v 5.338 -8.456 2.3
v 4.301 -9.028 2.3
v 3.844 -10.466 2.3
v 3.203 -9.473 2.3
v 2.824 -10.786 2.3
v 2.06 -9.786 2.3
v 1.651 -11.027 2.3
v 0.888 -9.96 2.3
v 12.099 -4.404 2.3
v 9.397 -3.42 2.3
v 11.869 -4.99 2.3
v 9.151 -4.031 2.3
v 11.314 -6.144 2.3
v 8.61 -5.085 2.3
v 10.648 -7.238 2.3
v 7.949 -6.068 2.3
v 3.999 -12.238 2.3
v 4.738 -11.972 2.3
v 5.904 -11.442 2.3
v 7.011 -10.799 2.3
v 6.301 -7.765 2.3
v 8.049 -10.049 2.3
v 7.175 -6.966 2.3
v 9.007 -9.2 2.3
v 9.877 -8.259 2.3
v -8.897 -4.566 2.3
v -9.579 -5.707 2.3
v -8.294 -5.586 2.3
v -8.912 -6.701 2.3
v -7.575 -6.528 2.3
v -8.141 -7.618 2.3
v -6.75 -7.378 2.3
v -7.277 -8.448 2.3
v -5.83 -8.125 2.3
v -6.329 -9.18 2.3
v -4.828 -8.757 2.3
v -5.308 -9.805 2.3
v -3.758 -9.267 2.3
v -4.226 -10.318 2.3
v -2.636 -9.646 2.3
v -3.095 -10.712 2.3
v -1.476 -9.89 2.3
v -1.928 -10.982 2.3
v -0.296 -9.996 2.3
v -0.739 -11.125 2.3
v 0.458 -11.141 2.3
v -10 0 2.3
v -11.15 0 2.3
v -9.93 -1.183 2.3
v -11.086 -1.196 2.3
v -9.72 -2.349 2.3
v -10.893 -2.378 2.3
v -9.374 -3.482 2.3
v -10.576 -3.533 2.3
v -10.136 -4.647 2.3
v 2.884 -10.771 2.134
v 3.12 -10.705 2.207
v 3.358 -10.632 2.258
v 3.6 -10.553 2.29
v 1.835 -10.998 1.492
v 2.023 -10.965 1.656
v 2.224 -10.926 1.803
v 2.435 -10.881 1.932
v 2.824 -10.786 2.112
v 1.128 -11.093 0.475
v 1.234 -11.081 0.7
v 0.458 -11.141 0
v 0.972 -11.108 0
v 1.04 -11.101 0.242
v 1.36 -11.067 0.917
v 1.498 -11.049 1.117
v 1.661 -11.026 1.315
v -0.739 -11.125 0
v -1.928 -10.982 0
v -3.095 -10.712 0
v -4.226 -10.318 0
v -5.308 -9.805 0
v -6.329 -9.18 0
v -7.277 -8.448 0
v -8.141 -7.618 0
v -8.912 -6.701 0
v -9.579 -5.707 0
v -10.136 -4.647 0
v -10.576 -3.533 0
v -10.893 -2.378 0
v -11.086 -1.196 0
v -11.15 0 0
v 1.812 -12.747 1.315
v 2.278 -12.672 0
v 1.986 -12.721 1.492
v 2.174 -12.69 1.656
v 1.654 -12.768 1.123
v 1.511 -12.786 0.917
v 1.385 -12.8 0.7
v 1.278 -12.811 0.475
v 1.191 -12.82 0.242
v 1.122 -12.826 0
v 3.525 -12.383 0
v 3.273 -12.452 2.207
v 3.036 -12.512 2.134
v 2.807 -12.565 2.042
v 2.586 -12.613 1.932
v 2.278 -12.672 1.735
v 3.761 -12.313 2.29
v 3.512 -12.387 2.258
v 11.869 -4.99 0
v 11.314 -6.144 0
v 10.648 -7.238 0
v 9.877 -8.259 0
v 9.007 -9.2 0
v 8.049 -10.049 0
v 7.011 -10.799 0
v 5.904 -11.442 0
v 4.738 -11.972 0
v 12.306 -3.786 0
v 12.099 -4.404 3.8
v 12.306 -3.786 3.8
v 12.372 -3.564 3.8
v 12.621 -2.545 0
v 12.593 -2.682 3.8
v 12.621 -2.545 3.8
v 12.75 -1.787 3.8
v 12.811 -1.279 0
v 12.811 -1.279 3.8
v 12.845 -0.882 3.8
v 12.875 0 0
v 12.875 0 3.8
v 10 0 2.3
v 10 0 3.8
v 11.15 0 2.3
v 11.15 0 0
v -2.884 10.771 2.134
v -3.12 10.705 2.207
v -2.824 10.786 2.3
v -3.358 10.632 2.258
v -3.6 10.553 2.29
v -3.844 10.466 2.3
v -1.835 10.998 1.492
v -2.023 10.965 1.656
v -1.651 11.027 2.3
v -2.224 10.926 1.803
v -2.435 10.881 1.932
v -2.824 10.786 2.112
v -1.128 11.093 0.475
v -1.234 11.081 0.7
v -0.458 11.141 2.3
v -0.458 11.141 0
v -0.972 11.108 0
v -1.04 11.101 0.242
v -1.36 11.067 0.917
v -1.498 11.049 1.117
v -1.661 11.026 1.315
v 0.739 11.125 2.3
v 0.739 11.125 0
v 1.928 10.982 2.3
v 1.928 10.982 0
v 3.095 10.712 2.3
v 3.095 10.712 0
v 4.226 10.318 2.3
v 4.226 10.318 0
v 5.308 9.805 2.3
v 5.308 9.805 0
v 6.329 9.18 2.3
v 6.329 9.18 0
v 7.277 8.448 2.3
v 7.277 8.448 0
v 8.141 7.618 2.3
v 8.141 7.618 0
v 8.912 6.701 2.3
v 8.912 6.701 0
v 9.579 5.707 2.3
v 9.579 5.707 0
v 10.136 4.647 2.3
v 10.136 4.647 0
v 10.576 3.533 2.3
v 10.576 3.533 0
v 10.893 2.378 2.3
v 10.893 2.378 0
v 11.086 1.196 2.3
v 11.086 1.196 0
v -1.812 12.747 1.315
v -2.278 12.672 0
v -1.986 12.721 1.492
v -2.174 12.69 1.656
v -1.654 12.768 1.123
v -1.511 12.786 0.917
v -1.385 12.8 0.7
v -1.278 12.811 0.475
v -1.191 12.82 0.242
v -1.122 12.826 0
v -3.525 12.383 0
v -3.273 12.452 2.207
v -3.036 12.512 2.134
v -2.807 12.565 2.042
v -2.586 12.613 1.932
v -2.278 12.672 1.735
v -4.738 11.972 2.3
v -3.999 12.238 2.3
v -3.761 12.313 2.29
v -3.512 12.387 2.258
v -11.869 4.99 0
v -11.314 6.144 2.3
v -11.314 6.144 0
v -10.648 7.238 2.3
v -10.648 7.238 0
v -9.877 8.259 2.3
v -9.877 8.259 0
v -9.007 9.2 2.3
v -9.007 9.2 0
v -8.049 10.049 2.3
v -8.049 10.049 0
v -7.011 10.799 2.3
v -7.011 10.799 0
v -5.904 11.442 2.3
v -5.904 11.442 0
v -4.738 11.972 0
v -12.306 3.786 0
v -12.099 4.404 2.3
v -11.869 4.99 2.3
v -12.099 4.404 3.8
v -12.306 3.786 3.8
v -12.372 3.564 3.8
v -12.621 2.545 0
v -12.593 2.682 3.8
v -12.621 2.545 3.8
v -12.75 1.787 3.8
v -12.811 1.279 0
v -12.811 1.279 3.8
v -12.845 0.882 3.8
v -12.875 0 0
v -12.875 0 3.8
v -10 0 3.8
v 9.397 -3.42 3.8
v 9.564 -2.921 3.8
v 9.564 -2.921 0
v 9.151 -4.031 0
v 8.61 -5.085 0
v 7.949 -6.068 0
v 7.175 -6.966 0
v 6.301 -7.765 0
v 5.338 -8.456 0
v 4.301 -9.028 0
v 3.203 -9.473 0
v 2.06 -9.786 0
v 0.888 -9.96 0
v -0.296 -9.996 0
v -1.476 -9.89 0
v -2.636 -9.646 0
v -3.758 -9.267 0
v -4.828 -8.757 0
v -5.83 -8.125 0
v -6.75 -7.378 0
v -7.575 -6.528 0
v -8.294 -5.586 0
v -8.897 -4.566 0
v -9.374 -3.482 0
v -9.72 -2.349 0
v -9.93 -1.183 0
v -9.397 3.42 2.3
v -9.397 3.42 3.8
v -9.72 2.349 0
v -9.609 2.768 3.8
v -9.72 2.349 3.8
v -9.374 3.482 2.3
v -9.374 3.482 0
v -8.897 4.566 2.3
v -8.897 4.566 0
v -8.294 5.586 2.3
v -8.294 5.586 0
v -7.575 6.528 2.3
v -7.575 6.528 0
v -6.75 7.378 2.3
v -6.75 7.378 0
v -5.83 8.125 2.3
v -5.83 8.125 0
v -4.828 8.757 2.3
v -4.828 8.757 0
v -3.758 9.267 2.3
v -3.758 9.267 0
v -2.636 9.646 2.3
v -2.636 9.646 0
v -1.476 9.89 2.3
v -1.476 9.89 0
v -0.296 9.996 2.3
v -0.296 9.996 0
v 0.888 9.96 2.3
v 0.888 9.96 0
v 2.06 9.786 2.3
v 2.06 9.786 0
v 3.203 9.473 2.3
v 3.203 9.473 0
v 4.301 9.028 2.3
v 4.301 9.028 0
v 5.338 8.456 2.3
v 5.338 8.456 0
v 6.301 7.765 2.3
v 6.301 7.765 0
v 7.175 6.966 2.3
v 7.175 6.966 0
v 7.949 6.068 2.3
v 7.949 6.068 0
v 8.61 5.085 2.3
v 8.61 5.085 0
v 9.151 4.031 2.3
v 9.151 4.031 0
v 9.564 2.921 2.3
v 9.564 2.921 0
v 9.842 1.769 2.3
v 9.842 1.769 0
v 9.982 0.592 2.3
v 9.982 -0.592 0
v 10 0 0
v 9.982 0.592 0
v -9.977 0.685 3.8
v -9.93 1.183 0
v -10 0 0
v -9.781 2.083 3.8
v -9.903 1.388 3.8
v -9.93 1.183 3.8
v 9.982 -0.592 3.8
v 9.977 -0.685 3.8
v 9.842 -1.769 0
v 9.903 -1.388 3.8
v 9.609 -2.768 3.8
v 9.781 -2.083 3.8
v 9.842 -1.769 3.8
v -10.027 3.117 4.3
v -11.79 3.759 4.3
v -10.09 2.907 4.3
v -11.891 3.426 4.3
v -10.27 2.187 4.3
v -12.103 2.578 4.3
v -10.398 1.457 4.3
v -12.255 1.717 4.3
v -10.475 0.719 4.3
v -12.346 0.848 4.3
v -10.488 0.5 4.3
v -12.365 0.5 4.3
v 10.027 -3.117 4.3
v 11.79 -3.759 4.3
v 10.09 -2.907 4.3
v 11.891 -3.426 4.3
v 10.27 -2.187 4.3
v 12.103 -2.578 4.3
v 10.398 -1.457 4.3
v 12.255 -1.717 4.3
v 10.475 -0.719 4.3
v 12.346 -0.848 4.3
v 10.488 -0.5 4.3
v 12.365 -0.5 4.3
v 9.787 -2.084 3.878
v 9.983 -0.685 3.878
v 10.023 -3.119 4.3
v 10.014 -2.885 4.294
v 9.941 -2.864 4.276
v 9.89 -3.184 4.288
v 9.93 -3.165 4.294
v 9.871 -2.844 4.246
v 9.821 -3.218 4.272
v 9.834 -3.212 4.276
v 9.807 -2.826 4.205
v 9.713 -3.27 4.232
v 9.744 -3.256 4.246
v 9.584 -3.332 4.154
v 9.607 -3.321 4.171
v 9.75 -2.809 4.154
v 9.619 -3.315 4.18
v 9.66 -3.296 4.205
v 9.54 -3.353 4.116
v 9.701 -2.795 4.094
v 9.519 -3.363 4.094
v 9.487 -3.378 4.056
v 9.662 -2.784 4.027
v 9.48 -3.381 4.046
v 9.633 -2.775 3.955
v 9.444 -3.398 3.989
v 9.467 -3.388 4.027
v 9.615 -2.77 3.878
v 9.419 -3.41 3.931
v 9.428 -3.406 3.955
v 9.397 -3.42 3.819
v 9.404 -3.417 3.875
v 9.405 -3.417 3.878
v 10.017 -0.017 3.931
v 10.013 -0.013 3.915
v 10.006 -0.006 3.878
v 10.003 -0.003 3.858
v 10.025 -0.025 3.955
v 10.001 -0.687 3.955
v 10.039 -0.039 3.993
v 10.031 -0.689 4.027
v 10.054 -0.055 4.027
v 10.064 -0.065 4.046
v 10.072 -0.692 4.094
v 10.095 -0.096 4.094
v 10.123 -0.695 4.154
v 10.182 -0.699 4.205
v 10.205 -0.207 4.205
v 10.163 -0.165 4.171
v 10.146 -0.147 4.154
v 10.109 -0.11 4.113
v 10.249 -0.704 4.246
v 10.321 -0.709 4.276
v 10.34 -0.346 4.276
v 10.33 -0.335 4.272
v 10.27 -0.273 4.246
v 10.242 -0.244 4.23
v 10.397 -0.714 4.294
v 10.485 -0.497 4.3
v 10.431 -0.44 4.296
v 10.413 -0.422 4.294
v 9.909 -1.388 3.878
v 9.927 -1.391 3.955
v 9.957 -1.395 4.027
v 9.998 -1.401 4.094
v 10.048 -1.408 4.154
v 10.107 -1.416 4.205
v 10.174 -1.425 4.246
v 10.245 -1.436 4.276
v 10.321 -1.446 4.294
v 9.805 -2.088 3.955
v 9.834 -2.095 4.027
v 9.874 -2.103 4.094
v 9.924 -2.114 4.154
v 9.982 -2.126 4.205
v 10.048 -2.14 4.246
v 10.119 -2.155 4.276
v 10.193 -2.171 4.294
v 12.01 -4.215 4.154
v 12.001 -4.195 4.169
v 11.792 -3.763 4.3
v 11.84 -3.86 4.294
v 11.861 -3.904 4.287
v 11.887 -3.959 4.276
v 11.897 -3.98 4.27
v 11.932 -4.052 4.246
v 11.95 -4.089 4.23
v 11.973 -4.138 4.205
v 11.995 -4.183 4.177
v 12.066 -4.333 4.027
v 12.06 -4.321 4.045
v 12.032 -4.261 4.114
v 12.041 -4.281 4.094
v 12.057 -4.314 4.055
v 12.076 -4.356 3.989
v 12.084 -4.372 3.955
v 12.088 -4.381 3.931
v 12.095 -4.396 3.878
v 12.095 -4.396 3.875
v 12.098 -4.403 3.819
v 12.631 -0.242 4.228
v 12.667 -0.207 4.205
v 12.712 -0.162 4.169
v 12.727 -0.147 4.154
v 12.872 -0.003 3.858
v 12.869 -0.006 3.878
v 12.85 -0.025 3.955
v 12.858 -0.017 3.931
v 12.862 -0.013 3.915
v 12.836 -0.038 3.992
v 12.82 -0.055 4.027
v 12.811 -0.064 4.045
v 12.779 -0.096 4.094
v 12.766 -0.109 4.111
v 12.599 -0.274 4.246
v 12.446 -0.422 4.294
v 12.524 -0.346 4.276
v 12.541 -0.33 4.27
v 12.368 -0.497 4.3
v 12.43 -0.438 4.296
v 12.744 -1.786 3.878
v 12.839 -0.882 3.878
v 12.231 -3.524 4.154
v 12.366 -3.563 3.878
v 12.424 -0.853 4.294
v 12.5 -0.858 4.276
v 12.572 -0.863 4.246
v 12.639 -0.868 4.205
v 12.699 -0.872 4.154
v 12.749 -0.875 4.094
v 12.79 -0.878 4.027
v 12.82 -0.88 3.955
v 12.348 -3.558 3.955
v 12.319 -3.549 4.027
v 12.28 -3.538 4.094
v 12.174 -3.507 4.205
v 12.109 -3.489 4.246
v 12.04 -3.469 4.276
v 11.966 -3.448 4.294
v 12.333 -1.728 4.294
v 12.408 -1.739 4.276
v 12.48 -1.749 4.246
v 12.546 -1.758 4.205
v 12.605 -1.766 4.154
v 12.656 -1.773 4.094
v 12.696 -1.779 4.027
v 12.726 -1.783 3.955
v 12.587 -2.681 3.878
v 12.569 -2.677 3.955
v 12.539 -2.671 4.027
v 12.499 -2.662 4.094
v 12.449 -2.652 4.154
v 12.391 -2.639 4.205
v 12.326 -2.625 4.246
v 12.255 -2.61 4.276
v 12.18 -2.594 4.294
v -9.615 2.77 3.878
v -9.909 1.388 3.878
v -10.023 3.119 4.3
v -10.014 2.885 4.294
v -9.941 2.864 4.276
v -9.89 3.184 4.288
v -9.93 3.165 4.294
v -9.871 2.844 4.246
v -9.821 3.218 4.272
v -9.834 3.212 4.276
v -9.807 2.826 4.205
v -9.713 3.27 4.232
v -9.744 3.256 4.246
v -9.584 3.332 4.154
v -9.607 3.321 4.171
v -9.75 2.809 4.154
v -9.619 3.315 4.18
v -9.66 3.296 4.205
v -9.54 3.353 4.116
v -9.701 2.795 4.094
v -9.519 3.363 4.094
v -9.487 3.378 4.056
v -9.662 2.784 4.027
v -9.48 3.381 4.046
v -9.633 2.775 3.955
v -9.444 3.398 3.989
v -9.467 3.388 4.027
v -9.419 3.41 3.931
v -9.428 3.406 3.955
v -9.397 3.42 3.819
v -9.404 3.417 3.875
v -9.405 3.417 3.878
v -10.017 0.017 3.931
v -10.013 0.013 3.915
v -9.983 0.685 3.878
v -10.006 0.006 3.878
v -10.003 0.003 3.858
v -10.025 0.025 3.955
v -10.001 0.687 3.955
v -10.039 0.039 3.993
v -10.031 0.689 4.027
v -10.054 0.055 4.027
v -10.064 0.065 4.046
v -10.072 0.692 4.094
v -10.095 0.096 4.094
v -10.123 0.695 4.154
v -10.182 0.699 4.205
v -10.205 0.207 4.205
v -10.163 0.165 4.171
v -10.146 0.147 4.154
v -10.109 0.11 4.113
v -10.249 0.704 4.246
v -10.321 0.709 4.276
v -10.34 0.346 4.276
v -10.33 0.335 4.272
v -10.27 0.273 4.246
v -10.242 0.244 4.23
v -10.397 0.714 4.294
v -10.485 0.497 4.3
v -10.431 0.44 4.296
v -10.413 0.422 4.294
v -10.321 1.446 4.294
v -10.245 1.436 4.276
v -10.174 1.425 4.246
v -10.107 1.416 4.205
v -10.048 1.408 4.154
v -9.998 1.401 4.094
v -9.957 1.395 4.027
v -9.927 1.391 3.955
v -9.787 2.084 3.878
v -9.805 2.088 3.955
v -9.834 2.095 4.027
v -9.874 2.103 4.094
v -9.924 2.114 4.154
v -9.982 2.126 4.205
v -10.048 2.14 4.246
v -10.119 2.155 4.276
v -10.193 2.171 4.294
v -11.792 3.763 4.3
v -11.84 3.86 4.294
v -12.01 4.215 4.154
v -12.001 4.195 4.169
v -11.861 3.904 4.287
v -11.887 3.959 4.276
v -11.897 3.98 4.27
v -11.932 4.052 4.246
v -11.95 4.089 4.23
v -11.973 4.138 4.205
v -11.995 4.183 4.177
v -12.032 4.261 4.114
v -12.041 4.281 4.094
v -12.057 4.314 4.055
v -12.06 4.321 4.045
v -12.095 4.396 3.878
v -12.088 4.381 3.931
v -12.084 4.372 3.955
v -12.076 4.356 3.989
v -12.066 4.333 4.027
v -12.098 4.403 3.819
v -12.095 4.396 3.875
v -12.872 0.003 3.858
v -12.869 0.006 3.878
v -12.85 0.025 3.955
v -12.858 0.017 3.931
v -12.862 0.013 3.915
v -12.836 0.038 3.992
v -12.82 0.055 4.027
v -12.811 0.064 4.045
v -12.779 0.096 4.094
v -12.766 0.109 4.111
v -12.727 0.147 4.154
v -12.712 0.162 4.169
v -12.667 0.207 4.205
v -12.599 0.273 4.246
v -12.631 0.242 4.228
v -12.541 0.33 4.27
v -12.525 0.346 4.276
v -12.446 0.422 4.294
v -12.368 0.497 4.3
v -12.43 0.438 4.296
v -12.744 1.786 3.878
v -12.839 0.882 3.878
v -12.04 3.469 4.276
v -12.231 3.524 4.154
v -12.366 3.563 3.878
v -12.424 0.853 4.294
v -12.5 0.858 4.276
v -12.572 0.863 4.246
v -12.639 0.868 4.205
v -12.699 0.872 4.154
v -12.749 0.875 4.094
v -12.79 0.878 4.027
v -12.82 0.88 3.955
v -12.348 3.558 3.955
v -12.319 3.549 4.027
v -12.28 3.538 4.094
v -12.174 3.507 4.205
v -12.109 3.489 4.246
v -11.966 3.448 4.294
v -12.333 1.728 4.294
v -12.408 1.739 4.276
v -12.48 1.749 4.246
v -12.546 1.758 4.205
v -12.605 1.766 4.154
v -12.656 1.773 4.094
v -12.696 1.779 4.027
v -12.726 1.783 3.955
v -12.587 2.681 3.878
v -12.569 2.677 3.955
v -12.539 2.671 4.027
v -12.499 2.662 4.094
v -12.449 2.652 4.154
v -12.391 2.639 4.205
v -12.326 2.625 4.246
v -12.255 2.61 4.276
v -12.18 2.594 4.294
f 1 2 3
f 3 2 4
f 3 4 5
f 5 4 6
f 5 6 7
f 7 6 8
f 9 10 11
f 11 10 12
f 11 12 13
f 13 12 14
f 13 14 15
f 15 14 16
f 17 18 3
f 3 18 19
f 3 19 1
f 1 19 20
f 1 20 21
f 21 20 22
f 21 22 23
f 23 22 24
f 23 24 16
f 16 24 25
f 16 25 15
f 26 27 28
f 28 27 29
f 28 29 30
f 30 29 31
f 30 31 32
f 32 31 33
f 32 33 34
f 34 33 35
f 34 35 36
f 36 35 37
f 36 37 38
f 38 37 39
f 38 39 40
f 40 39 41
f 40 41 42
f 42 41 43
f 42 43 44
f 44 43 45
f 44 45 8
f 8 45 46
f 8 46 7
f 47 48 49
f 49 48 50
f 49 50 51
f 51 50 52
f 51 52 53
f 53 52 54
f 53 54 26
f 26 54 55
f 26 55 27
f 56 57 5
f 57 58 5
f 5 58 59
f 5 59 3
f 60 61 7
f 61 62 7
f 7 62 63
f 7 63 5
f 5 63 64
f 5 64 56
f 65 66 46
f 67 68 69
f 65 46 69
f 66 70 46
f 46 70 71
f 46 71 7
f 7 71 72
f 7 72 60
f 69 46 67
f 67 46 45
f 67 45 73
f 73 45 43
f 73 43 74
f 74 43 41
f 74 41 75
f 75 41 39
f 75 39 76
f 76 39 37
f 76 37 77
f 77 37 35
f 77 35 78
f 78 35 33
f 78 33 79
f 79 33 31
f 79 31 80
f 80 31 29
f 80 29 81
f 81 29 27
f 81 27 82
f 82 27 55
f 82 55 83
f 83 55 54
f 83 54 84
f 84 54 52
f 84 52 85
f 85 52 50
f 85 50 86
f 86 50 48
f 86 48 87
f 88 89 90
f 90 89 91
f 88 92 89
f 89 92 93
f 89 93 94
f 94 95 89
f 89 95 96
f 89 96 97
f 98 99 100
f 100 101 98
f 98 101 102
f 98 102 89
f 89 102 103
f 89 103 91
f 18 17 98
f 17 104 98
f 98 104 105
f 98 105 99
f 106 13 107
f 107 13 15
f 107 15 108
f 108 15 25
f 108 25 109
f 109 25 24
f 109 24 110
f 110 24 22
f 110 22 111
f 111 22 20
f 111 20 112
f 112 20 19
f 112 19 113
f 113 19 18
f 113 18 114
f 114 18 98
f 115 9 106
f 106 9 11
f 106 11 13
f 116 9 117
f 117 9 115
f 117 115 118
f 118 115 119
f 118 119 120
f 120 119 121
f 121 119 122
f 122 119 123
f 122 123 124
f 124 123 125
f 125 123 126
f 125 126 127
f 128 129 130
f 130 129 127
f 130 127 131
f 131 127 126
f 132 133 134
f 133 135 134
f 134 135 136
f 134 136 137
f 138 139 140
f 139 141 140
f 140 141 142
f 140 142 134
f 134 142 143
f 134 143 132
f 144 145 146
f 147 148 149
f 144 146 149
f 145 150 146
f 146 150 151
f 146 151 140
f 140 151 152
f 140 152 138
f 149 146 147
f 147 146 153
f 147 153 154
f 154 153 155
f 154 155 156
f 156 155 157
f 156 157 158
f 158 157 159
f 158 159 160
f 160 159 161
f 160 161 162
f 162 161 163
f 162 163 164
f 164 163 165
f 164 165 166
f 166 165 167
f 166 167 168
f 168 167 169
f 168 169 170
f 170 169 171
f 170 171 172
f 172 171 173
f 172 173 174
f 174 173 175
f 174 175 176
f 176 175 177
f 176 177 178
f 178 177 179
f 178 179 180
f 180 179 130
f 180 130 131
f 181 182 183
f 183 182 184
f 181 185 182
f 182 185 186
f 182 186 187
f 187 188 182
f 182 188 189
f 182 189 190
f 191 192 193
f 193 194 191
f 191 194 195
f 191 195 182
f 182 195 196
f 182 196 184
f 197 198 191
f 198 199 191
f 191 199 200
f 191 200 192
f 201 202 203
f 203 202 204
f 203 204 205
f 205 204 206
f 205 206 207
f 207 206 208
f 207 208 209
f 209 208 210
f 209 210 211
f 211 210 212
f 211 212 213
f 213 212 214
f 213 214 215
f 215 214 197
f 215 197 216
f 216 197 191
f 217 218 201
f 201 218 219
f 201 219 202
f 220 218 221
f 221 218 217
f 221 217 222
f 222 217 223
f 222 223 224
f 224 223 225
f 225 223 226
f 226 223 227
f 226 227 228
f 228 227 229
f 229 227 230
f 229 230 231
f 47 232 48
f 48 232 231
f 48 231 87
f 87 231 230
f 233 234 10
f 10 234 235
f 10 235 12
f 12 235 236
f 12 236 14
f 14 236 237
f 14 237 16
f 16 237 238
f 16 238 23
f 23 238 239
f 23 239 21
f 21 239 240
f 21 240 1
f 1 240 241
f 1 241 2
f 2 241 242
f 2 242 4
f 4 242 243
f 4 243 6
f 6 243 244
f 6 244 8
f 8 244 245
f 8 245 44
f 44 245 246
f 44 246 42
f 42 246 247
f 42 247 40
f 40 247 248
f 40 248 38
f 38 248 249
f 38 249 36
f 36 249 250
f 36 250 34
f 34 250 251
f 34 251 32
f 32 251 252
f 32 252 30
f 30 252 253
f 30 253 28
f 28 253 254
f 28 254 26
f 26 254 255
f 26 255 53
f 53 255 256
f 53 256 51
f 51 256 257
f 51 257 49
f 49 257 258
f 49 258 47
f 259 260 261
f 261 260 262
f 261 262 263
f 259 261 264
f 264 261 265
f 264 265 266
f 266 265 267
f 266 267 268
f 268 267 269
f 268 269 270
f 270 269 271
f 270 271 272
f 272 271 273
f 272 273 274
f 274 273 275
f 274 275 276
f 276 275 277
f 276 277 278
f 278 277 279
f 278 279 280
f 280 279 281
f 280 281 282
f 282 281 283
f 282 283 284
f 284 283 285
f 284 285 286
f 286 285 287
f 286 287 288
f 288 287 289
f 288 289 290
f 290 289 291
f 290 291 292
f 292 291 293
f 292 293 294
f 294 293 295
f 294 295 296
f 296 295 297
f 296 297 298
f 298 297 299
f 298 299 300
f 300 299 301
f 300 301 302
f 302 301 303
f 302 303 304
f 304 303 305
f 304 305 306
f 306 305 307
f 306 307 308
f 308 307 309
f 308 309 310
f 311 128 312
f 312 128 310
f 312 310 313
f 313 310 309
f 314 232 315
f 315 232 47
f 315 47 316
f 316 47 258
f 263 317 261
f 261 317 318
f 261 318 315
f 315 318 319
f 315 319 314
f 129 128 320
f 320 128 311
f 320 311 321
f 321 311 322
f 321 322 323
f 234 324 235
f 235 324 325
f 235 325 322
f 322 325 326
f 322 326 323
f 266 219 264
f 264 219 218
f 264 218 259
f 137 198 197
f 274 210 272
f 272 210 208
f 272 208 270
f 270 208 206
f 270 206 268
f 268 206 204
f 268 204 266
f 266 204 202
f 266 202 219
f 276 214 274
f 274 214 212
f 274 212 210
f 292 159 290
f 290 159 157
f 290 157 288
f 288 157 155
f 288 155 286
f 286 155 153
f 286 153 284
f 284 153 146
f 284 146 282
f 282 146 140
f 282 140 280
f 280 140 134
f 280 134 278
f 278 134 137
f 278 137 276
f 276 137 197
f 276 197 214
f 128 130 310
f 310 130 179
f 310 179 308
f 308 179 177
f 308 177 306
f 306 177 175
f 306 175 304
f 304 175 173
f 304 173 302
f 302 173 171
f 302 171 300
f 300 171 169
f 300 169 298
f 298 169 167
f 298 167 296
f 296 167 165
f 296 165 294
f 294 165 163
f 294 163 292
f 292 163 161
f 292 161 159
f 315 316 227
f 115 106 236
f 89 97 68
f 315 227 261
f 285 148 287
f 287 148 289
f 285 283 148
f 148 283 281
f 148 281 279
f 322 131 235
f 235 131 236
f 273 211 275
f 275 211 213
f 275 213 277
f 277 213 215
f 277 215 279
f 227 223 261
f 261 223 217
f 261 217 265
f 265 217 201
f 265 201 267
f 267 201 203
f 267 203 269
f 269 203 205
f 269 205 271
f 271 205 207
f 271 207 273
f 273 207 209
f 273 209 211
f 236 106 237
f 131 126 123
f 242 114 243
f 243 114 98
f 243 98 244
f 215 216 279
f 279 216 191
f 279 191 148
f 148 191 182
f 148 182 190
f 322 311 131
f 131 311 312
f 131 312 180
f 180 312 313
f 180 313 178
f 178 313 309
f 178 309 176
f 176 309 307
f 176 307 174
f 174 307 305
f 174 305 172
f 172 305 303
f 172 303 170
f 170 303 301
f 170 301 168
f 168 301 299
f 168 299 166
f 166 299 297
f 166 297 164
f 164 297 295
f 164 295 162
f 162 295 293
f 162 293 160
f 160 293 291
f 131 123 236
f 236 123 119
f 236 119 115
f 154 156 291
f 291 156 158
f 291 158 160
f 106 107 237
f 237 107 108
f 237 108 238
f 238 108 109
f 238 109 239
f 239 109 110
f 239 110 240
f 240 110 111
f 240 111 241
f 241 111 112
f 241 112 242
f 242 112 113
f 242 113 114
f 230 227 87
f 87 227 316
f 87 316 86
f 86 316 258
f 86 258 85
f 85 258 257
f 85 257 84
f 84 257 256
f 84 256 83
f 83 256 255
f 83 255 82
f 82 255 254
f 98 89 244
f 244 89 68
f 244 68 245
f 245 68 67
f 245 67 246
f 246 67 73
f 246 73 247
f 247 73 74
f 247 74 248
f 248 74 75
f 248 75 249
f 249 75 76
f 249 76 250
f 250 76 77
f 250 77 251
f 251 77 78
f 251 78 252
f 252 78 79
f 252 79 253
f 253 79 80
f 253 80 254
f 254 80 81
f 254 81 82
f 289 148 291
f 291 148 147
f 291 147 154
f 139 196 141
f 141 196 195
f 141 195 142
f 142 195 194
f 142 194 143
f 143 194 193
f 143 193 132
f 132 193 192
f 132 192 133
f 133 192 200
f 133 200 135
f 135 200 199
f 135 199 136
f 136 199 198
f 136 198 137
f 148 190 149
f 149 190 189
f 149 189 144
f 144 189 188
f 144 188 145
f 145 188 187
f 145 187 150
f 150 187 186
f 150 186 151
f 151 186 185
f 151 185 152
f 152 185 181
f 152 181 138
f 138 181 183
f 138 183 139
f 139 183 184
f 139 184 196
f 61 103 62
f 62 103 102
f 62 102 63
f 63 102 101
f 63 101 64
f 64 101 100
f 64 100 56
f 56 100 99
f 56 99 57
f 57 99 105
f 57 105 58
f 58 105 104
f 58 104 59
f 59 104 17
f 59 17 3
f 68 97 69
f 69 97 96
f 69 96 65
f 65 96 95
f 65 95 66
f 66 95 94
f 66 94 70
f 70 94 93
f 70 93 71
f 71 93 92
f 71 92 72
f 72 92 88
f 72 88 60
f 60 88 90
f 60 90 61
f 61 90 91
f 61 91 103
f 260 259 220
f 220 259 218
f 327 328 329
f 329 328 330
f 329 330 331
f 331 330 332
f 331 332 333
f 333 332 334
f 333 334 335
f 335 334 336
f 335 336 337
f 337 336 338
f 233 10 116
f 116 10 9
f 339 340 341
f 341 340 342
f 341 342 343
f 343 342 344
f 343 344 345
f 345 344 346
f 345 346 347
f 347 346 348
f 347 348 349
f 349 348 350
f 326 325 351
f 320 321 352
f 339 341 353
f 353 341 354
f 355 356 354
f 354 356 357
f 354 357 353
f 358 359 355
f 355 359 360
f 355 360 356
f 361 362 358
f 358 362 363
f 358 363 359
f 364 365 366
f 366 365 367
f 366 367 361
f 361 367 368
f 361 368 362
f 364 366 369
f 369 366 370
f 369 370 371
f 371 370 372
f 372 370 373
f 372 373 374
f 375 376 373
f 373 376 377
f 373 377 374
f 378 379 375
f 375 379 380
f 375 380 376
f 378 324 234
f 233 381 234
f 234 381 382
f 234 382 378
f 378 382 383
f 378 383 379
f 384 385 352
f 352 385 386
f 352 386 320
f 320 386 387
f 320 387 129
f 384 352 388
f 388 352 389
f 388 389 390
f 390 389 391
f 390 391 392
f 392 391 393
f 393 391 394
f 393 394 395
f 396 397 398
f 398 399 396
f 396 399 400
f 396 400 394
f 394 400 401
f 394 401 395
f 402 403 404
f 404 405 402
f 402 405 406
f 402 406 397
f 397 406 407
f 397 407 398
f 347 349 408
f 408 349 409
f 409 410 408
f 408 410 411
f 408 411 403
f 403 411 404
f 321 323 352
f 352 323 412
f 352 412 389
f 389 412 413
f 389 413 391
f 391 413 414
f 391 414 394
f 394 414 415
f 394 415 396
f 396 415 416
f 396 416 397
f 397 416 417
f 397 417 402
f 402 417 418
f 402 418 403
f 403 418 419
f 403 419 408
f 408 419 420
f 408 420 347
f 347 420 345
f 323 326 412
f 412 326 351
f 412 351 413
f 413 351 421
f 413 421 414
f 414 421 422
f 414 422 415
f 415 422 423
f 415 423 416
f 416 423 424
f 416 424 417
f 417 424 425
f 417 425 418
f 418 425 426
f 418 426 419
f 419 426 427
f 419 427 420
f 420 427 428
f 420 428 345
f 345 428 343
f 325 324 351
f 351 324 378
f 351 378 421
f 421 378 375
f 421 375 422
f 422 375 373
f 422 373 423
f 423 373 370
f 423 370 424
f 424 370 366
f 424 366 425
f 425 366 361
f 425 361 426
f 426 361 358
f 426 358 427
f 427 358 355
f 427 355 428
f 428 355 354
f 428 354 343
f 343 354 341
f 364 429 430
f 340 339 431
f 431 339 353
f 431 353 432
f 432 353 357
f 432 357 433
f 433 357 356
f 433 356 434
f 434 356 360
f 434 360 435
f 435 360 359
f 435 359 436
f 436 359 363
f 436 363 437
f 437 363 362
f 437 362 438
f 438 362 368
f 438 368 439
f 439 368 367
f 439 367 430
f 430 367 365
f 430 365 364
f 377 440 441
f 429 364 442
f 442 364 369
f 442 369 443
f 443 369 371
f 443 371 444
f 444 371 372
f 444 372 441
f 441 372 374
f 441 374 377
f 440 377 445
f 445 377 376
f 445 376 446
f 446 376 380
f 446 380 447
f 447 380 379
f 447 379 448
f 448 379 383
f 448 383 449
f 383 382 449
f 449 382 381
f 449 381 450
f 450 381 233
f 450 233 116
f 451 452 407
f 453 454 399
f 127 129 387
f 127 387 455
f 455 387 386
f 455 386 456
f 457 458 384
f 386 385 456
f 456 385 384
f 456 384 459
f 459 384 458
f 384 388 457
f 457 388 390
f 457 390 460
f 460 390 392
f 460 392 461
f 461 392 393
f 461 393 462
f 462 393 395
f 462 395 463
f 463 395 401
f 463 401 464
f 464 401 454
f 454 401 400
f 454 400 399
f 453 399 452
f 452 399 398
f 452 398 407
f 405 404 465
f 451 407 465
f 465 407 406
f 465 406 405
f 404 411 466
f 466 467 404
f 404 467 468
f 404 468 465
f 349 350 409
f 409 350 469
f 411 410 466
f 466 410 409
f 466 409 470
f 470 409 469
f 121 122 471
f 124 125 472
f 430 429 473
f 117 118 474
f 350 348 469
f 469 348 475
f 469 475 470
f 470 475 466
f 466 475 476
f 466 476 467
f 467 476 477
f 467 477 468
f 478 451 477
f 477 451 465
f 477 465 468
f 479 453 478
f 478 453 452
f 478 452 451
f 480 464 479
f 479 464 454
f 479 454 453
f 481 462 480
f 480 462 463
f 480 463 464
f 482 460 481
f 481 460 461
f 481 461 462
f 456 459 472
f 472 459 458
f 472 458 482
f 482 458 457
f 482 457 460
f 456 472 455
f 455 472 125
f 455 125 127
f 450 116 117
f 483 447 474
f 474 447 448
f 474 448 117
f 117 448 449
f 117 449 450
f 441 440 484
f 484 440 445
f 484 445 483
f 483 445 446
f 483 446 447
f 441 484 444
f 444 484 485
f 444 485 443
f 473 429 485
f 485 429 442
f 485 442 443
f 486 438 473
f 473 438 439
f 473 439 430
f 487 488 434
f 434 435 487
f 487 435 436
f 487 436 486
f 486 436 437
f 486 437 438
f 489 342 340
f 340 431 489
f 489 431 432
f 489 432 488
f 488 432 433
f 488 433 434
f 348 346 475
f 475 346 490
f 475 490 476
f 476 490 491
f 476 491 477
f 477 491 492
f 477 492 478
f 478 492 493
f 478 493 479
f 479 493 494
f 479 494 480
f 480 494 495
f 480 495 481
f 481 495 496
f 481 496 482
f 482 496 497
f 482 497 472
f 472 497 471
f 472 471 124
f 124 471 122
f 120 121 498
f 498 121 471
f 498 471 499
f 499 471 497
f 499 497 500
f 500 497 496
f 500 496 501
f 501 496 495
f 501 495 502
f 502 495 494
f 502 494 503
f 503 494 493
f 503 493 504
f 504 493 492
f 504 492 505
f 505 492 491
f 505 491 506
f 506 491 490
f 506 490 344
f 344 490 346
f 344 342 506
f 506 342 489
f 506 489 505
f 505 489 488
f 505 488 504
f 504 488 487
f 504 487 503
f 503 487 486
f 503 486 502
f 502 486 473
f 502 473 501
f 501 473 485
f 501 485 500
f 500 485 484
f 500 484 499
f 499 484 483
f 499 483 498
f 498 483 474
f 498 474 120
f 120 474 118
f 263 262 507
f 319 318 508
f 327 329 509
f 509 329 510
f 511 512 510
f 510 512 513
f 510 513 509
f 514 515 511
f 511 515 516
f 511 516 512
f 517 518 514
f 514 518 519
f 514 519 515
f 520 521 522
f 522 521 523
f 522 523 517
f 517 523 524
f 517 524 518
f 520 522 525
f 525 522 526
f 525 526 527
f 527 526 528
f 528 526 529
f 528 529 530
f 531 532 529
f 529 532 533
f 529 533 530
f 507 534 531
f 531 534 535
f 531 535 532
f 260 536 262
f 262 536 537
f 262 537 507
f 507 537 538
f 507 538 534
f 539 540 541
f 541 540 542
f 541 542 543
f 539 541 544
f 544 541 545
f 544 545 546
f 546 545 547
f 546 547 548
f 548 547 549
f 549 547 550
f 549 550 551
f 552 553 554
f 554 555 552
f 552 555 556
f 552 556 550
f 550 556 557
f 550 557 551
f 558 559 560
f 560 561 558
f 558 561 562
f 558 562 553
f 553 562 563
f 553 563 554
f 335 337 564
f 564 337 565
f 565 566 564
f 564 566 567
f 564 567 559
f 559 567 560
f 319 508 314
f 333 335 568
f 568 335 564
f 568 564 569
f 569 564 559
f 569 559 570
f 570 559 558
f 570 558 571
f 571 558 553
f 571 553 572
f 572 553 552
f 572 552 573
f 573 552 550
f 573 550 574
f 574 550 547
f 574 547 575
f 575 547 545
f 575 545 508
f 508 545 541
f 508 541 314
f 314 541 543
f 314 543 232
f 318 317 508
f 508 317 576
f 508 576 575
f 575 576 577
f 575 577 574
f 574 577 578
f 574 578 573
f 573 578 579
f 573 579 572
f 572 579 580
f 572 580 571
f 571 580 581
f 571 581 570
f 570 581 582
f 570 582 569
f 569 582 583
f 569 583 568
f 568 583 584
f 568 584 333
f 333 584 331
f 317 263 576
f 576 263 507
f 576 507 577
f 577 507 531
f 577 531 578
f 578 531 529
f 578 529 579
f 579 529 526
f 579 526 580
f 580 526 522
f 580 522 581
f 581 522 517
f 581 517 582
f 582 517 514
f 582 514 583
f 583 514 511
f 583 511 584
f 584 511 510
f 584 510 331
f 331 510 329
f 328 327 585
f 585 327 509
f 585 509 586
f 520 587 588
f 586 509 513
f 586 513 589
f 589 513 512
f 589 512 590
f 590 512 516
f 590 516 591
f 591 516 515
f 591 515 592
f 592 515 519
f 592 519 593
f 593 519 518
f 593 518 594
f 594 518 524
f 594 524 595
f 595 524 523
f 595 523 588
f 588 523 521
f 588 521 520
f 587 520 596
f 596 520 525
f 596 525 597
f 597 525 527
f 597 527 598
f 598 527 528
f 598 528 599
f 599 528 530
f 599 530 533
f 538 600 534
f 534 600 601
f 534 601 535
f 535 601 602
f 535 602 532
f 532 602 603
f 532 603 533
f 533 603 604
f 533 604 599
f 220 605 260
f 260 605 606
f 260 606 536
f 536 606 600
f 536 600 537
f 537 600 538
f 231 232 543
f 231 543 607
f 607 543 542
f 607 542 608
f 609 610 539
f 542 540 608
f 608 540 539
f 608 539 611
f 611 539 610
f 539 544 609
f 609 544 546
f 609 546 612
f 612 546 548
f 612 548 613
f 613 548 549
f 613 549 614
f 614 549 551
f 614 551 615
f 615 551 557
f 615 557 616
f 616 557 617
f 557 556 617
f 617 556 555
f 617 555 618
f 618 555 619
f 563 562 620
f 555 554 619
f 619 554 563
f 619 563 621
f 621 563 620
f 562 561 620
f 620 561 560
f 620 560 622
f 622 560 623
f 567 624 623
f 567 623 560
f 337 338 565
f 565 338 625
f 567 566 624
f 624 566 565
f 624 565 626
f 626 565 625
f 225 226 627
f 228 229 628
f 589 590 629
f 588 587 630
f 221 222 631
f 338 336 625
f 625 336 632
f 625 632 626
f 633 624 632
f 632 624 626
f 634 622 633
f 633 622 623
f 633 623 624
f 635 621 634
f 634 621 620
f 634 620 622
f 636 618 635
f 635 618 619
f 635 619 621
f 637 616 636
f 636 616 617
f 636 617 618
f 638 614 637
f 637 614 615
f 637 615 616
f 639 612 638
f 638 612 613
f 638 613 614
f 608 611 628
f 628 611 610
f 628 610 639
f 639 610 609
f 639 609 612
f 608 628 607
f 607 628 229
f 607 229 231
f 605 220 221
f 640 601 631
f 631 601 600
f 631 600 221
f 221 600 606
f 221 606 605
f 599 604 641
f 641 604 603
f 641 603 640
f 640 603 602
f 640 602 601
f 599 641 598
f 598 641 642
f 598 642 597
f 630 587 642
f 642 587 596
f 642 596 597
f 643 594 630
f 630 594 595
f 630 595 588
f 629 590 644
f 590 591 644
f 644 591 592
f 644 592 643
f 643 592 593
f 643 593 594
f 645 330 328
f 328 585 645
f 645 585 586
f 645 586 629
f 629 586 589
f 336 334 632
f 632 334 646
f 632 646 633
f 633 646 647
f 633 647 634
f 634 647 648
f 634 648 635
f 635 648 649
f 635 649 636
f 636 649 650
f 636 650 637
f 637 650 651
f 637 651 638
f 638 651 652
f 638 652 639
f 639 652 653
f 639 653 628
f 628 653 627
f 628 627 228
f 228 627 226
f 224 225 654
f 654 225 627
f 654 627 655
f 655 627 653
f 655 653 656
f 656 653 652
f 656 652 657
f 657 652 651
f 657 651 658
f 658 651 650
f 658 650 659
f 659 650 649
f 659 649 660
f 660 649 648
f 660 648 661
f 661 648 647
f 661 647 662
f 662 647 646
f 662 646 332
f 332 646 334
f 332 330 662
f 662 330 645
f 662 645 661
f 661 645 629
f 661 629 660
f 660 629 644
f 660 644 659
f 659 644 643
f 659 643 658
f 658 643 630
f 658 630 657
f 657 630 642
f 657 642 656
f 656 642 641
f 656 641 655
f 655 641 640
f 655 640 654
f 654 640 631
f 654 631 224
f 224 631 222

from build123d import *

# Parameters (mm, degrees)
BOSS_EXTRUDE1_DEPTH = 2.3
FILLET1_R           = 3
BOSS_EXTRUDE2_DEPTH = 2
FILLET2_R           = 0.5


with BuildPart() as part:
    # Sketch2 → Boss-Extrude1 (new body)
    with BuildSketch(Plane.XY):
        with BuildLine():
            ThreePointArc((-11.15, 0), (-8.220642305, 7.532830815), (-0.971786532, 11.107570884))
            Line((-0.971786532, 11.107570884), (-1.122130188, 12.826006738))
            ThreePointArc((-1.122130188, 12.826006738), (-9.492445711, 8.698223923), (-12.875, 0))
            Line((-12.875, 0), (-11.15, 0))
        make_face()
        with BuildLine():
            ThreePointArc((-10, 0), (-7.372773368, 6.755902076), (-0.871557427, 9.961946981))
            Line((-0.871557427, 9.961946981), (-0.971786532, 11.107570884))
            ThreePointArc((-0.971786532, 11.107570884), (-8.220642305, 7.532830815), (-11.15, 0))
            Line((-11.15, 0), (-10, 0))
        make_face()
        with BuildLine():
            Line((-0.971786532, 11.107570884), (-0.871557427, 9.961946981))
            ThreePointArc((-0.871557427, 9.961946981), (6.755902076, 7.372773368), (10, 0))
            Line((10, 0), (11.15, 0))
            ThreePointArc((11.15, 0), (10.885700479, 2.413301695), (10.105331825, 4.712193618))
            ThreePointArc((10.105331825, 4.712193618), (5.575, 9.656183252), (-0.971786532, 11.107570884))
        make_face()
        with BuildLine():
            ThreePointArc((10, 0), (7.372773368, -6.755902076), (0.871557427, -9.961946981))
            Line((0.871557427, -9.961946981), (0.971786532, -11.107570884))
            ThreePointArc((0.971786532, -11.107570884), (8.220642305, -7.532830815), (11.15, 0))
            Line((11.15, 0), (10, 0))
        make_face()
        with BuildLine():
            Line((0.971786532, -11.107570884), (0.871557427, -9.961946981))
            ThreePointArc((0.871557427, -9.961946981), (-6.755902076, -7.372773368), (-10, 0))
            Line((-10, 0), (-11.15, 0))
            ThreePointArc((-11.15, 0), (-7.532830815, -8.220642305), (0.971786532, -11.107570884))
        make_face()
        with BuildLine():
            ThreePointArc((11.15, 0), (8.220642305, -7.532830815), (0.971786532, -11.107570884))
            Line((0.971786532, -11.107570884), (1.122130188, -12.826006738))
            ThreePointArc((1.122130188, -12.826006738), (9.492445711, -8.698223923), (12.875, 0))
            Line((12.875, 0), (11.15, 0))
        make_face()
    extrude(amount=BOSS_EXTRUDE1_DEPTH)

    # Fillet1
    # the kernel refuses this fillet: 3 mm, written as the material it takes off along each edge
    with BuildSketch(Plane(origin=(-1.757754934, 20.091230835, 2.3), x_dir=(0, 0, -1), z_dir=(0.08715574274757223, -0.9961946980917531, 0))) as fillet1_piece_1_section:
        with BuildLine():
            CenterArc((3, -2.917190429), FILLET1_R, 103.493398822, 76.506601178)
            Line((0, -2.917190429), (0, 0))
            Line((0, 0), (2.3, 0))
        make_face()
    fillet1_piece_1 = extrude(amount=16.310952146, mode=Mode.PRIVATE)
    fillet1_piece_1 = fillet1_piece_1 - Plane(origin=(0, 0, 1.660555485), x_dir=(1, 0, 0), z_dir=(0, 0, -1)) * Cylinder(11.15, 45, mode=Mode.PRIVATE)
    add(fillet1_piece_1, mode=Mode.SUBTRACT)
    with BuildSketch(Plane(origin=(0.336161785, -3.842346787, 2.3), x_dir=(0.9961946980917454, 0.08715574274765826, 0), z_dir=(0.08715574274765828, -0.9961946980917455, 0))) as fillet1_piece_2_section:
        with BuildLine():
            CenterArc((2.917190429, -3), FILLET1_R, 90, 76.506601178)
            Line((0, -2.3), (0, 0))
            Line((0, 0), (2.917190429, 0))
        make_face()
    fillet1_piece_2 = extrude(amount=16.310952146, mode=Mode.PRIVATE)
    fillet1_piece_2 = fillet1_piece_2 - Plane(origin=(0, 0, 1.660555485), x_dir=(1, 0, 0), z_dir=(0, 0, -1)) * Cylinder(11.15, 45, mode=Mode.PRIVATE)
    add(fillet1_piece_2, mode=Mode.SUBTRACT)

    # Sketch3 → Boss-Extrude2 (add)
    with BuildSketch(Plane.XY.offset(2.3)):
        with BuildLine():
            ThreePointArc((-10, 0), (-9.84807753, 1.736481777), (-9.396926208, 3.420201433))
            Line((-9.396926208, 3.420201433), (-12.098542493, 4.403509345))
            ThreePointArc((-12.098542493, 4.403509345), (-12.67939982, 2.235720287), (-12.875, 0))
            Line((-12.875, 0), (-11.15, 0))
            Line((-11.15, 0), (-10, 0))
        make_face()
        with BuildLine():
            ThreePointArc((10, 0), (9.84807753, -1.736481777), (9.396926208, -3.420201433))
            Line((9.396926208, -3.420201433), (12.098542493, -4.403509345))
            ThreePointArc((12.098542493, -4.403509345), (12.67939982, -2.235720287), (12.875, 0))
            Line((12.875, 0), (11.15, 0))
            Line((11.15, 0), (10, 0))
        make_face()
    extrude(amount=BOSS_EXTRUDE2_DEPTH)

    # Fillet2
    fillet2_edges = [part.edges().sort_by_distance(p)[0] for p in [
        (-11.4375, 0, 4.3),
        (-9.84807753, 1.736481777, 4.3),
        (-10.74773435, 3.911855389, 4.3),
        (-12.67939982, 2.235720287, 4.3),
        (11.4375, 0, 4.3),
        (9.84807753, -1.736481777, 4.3),
        (10.74773435, -3.911855389, 4.3),
        (12.67939982, -2.235720287, 4.3),
    ]]
    fillet(fillet2_edges, radius=FILLET2_R)


solid = part.part
